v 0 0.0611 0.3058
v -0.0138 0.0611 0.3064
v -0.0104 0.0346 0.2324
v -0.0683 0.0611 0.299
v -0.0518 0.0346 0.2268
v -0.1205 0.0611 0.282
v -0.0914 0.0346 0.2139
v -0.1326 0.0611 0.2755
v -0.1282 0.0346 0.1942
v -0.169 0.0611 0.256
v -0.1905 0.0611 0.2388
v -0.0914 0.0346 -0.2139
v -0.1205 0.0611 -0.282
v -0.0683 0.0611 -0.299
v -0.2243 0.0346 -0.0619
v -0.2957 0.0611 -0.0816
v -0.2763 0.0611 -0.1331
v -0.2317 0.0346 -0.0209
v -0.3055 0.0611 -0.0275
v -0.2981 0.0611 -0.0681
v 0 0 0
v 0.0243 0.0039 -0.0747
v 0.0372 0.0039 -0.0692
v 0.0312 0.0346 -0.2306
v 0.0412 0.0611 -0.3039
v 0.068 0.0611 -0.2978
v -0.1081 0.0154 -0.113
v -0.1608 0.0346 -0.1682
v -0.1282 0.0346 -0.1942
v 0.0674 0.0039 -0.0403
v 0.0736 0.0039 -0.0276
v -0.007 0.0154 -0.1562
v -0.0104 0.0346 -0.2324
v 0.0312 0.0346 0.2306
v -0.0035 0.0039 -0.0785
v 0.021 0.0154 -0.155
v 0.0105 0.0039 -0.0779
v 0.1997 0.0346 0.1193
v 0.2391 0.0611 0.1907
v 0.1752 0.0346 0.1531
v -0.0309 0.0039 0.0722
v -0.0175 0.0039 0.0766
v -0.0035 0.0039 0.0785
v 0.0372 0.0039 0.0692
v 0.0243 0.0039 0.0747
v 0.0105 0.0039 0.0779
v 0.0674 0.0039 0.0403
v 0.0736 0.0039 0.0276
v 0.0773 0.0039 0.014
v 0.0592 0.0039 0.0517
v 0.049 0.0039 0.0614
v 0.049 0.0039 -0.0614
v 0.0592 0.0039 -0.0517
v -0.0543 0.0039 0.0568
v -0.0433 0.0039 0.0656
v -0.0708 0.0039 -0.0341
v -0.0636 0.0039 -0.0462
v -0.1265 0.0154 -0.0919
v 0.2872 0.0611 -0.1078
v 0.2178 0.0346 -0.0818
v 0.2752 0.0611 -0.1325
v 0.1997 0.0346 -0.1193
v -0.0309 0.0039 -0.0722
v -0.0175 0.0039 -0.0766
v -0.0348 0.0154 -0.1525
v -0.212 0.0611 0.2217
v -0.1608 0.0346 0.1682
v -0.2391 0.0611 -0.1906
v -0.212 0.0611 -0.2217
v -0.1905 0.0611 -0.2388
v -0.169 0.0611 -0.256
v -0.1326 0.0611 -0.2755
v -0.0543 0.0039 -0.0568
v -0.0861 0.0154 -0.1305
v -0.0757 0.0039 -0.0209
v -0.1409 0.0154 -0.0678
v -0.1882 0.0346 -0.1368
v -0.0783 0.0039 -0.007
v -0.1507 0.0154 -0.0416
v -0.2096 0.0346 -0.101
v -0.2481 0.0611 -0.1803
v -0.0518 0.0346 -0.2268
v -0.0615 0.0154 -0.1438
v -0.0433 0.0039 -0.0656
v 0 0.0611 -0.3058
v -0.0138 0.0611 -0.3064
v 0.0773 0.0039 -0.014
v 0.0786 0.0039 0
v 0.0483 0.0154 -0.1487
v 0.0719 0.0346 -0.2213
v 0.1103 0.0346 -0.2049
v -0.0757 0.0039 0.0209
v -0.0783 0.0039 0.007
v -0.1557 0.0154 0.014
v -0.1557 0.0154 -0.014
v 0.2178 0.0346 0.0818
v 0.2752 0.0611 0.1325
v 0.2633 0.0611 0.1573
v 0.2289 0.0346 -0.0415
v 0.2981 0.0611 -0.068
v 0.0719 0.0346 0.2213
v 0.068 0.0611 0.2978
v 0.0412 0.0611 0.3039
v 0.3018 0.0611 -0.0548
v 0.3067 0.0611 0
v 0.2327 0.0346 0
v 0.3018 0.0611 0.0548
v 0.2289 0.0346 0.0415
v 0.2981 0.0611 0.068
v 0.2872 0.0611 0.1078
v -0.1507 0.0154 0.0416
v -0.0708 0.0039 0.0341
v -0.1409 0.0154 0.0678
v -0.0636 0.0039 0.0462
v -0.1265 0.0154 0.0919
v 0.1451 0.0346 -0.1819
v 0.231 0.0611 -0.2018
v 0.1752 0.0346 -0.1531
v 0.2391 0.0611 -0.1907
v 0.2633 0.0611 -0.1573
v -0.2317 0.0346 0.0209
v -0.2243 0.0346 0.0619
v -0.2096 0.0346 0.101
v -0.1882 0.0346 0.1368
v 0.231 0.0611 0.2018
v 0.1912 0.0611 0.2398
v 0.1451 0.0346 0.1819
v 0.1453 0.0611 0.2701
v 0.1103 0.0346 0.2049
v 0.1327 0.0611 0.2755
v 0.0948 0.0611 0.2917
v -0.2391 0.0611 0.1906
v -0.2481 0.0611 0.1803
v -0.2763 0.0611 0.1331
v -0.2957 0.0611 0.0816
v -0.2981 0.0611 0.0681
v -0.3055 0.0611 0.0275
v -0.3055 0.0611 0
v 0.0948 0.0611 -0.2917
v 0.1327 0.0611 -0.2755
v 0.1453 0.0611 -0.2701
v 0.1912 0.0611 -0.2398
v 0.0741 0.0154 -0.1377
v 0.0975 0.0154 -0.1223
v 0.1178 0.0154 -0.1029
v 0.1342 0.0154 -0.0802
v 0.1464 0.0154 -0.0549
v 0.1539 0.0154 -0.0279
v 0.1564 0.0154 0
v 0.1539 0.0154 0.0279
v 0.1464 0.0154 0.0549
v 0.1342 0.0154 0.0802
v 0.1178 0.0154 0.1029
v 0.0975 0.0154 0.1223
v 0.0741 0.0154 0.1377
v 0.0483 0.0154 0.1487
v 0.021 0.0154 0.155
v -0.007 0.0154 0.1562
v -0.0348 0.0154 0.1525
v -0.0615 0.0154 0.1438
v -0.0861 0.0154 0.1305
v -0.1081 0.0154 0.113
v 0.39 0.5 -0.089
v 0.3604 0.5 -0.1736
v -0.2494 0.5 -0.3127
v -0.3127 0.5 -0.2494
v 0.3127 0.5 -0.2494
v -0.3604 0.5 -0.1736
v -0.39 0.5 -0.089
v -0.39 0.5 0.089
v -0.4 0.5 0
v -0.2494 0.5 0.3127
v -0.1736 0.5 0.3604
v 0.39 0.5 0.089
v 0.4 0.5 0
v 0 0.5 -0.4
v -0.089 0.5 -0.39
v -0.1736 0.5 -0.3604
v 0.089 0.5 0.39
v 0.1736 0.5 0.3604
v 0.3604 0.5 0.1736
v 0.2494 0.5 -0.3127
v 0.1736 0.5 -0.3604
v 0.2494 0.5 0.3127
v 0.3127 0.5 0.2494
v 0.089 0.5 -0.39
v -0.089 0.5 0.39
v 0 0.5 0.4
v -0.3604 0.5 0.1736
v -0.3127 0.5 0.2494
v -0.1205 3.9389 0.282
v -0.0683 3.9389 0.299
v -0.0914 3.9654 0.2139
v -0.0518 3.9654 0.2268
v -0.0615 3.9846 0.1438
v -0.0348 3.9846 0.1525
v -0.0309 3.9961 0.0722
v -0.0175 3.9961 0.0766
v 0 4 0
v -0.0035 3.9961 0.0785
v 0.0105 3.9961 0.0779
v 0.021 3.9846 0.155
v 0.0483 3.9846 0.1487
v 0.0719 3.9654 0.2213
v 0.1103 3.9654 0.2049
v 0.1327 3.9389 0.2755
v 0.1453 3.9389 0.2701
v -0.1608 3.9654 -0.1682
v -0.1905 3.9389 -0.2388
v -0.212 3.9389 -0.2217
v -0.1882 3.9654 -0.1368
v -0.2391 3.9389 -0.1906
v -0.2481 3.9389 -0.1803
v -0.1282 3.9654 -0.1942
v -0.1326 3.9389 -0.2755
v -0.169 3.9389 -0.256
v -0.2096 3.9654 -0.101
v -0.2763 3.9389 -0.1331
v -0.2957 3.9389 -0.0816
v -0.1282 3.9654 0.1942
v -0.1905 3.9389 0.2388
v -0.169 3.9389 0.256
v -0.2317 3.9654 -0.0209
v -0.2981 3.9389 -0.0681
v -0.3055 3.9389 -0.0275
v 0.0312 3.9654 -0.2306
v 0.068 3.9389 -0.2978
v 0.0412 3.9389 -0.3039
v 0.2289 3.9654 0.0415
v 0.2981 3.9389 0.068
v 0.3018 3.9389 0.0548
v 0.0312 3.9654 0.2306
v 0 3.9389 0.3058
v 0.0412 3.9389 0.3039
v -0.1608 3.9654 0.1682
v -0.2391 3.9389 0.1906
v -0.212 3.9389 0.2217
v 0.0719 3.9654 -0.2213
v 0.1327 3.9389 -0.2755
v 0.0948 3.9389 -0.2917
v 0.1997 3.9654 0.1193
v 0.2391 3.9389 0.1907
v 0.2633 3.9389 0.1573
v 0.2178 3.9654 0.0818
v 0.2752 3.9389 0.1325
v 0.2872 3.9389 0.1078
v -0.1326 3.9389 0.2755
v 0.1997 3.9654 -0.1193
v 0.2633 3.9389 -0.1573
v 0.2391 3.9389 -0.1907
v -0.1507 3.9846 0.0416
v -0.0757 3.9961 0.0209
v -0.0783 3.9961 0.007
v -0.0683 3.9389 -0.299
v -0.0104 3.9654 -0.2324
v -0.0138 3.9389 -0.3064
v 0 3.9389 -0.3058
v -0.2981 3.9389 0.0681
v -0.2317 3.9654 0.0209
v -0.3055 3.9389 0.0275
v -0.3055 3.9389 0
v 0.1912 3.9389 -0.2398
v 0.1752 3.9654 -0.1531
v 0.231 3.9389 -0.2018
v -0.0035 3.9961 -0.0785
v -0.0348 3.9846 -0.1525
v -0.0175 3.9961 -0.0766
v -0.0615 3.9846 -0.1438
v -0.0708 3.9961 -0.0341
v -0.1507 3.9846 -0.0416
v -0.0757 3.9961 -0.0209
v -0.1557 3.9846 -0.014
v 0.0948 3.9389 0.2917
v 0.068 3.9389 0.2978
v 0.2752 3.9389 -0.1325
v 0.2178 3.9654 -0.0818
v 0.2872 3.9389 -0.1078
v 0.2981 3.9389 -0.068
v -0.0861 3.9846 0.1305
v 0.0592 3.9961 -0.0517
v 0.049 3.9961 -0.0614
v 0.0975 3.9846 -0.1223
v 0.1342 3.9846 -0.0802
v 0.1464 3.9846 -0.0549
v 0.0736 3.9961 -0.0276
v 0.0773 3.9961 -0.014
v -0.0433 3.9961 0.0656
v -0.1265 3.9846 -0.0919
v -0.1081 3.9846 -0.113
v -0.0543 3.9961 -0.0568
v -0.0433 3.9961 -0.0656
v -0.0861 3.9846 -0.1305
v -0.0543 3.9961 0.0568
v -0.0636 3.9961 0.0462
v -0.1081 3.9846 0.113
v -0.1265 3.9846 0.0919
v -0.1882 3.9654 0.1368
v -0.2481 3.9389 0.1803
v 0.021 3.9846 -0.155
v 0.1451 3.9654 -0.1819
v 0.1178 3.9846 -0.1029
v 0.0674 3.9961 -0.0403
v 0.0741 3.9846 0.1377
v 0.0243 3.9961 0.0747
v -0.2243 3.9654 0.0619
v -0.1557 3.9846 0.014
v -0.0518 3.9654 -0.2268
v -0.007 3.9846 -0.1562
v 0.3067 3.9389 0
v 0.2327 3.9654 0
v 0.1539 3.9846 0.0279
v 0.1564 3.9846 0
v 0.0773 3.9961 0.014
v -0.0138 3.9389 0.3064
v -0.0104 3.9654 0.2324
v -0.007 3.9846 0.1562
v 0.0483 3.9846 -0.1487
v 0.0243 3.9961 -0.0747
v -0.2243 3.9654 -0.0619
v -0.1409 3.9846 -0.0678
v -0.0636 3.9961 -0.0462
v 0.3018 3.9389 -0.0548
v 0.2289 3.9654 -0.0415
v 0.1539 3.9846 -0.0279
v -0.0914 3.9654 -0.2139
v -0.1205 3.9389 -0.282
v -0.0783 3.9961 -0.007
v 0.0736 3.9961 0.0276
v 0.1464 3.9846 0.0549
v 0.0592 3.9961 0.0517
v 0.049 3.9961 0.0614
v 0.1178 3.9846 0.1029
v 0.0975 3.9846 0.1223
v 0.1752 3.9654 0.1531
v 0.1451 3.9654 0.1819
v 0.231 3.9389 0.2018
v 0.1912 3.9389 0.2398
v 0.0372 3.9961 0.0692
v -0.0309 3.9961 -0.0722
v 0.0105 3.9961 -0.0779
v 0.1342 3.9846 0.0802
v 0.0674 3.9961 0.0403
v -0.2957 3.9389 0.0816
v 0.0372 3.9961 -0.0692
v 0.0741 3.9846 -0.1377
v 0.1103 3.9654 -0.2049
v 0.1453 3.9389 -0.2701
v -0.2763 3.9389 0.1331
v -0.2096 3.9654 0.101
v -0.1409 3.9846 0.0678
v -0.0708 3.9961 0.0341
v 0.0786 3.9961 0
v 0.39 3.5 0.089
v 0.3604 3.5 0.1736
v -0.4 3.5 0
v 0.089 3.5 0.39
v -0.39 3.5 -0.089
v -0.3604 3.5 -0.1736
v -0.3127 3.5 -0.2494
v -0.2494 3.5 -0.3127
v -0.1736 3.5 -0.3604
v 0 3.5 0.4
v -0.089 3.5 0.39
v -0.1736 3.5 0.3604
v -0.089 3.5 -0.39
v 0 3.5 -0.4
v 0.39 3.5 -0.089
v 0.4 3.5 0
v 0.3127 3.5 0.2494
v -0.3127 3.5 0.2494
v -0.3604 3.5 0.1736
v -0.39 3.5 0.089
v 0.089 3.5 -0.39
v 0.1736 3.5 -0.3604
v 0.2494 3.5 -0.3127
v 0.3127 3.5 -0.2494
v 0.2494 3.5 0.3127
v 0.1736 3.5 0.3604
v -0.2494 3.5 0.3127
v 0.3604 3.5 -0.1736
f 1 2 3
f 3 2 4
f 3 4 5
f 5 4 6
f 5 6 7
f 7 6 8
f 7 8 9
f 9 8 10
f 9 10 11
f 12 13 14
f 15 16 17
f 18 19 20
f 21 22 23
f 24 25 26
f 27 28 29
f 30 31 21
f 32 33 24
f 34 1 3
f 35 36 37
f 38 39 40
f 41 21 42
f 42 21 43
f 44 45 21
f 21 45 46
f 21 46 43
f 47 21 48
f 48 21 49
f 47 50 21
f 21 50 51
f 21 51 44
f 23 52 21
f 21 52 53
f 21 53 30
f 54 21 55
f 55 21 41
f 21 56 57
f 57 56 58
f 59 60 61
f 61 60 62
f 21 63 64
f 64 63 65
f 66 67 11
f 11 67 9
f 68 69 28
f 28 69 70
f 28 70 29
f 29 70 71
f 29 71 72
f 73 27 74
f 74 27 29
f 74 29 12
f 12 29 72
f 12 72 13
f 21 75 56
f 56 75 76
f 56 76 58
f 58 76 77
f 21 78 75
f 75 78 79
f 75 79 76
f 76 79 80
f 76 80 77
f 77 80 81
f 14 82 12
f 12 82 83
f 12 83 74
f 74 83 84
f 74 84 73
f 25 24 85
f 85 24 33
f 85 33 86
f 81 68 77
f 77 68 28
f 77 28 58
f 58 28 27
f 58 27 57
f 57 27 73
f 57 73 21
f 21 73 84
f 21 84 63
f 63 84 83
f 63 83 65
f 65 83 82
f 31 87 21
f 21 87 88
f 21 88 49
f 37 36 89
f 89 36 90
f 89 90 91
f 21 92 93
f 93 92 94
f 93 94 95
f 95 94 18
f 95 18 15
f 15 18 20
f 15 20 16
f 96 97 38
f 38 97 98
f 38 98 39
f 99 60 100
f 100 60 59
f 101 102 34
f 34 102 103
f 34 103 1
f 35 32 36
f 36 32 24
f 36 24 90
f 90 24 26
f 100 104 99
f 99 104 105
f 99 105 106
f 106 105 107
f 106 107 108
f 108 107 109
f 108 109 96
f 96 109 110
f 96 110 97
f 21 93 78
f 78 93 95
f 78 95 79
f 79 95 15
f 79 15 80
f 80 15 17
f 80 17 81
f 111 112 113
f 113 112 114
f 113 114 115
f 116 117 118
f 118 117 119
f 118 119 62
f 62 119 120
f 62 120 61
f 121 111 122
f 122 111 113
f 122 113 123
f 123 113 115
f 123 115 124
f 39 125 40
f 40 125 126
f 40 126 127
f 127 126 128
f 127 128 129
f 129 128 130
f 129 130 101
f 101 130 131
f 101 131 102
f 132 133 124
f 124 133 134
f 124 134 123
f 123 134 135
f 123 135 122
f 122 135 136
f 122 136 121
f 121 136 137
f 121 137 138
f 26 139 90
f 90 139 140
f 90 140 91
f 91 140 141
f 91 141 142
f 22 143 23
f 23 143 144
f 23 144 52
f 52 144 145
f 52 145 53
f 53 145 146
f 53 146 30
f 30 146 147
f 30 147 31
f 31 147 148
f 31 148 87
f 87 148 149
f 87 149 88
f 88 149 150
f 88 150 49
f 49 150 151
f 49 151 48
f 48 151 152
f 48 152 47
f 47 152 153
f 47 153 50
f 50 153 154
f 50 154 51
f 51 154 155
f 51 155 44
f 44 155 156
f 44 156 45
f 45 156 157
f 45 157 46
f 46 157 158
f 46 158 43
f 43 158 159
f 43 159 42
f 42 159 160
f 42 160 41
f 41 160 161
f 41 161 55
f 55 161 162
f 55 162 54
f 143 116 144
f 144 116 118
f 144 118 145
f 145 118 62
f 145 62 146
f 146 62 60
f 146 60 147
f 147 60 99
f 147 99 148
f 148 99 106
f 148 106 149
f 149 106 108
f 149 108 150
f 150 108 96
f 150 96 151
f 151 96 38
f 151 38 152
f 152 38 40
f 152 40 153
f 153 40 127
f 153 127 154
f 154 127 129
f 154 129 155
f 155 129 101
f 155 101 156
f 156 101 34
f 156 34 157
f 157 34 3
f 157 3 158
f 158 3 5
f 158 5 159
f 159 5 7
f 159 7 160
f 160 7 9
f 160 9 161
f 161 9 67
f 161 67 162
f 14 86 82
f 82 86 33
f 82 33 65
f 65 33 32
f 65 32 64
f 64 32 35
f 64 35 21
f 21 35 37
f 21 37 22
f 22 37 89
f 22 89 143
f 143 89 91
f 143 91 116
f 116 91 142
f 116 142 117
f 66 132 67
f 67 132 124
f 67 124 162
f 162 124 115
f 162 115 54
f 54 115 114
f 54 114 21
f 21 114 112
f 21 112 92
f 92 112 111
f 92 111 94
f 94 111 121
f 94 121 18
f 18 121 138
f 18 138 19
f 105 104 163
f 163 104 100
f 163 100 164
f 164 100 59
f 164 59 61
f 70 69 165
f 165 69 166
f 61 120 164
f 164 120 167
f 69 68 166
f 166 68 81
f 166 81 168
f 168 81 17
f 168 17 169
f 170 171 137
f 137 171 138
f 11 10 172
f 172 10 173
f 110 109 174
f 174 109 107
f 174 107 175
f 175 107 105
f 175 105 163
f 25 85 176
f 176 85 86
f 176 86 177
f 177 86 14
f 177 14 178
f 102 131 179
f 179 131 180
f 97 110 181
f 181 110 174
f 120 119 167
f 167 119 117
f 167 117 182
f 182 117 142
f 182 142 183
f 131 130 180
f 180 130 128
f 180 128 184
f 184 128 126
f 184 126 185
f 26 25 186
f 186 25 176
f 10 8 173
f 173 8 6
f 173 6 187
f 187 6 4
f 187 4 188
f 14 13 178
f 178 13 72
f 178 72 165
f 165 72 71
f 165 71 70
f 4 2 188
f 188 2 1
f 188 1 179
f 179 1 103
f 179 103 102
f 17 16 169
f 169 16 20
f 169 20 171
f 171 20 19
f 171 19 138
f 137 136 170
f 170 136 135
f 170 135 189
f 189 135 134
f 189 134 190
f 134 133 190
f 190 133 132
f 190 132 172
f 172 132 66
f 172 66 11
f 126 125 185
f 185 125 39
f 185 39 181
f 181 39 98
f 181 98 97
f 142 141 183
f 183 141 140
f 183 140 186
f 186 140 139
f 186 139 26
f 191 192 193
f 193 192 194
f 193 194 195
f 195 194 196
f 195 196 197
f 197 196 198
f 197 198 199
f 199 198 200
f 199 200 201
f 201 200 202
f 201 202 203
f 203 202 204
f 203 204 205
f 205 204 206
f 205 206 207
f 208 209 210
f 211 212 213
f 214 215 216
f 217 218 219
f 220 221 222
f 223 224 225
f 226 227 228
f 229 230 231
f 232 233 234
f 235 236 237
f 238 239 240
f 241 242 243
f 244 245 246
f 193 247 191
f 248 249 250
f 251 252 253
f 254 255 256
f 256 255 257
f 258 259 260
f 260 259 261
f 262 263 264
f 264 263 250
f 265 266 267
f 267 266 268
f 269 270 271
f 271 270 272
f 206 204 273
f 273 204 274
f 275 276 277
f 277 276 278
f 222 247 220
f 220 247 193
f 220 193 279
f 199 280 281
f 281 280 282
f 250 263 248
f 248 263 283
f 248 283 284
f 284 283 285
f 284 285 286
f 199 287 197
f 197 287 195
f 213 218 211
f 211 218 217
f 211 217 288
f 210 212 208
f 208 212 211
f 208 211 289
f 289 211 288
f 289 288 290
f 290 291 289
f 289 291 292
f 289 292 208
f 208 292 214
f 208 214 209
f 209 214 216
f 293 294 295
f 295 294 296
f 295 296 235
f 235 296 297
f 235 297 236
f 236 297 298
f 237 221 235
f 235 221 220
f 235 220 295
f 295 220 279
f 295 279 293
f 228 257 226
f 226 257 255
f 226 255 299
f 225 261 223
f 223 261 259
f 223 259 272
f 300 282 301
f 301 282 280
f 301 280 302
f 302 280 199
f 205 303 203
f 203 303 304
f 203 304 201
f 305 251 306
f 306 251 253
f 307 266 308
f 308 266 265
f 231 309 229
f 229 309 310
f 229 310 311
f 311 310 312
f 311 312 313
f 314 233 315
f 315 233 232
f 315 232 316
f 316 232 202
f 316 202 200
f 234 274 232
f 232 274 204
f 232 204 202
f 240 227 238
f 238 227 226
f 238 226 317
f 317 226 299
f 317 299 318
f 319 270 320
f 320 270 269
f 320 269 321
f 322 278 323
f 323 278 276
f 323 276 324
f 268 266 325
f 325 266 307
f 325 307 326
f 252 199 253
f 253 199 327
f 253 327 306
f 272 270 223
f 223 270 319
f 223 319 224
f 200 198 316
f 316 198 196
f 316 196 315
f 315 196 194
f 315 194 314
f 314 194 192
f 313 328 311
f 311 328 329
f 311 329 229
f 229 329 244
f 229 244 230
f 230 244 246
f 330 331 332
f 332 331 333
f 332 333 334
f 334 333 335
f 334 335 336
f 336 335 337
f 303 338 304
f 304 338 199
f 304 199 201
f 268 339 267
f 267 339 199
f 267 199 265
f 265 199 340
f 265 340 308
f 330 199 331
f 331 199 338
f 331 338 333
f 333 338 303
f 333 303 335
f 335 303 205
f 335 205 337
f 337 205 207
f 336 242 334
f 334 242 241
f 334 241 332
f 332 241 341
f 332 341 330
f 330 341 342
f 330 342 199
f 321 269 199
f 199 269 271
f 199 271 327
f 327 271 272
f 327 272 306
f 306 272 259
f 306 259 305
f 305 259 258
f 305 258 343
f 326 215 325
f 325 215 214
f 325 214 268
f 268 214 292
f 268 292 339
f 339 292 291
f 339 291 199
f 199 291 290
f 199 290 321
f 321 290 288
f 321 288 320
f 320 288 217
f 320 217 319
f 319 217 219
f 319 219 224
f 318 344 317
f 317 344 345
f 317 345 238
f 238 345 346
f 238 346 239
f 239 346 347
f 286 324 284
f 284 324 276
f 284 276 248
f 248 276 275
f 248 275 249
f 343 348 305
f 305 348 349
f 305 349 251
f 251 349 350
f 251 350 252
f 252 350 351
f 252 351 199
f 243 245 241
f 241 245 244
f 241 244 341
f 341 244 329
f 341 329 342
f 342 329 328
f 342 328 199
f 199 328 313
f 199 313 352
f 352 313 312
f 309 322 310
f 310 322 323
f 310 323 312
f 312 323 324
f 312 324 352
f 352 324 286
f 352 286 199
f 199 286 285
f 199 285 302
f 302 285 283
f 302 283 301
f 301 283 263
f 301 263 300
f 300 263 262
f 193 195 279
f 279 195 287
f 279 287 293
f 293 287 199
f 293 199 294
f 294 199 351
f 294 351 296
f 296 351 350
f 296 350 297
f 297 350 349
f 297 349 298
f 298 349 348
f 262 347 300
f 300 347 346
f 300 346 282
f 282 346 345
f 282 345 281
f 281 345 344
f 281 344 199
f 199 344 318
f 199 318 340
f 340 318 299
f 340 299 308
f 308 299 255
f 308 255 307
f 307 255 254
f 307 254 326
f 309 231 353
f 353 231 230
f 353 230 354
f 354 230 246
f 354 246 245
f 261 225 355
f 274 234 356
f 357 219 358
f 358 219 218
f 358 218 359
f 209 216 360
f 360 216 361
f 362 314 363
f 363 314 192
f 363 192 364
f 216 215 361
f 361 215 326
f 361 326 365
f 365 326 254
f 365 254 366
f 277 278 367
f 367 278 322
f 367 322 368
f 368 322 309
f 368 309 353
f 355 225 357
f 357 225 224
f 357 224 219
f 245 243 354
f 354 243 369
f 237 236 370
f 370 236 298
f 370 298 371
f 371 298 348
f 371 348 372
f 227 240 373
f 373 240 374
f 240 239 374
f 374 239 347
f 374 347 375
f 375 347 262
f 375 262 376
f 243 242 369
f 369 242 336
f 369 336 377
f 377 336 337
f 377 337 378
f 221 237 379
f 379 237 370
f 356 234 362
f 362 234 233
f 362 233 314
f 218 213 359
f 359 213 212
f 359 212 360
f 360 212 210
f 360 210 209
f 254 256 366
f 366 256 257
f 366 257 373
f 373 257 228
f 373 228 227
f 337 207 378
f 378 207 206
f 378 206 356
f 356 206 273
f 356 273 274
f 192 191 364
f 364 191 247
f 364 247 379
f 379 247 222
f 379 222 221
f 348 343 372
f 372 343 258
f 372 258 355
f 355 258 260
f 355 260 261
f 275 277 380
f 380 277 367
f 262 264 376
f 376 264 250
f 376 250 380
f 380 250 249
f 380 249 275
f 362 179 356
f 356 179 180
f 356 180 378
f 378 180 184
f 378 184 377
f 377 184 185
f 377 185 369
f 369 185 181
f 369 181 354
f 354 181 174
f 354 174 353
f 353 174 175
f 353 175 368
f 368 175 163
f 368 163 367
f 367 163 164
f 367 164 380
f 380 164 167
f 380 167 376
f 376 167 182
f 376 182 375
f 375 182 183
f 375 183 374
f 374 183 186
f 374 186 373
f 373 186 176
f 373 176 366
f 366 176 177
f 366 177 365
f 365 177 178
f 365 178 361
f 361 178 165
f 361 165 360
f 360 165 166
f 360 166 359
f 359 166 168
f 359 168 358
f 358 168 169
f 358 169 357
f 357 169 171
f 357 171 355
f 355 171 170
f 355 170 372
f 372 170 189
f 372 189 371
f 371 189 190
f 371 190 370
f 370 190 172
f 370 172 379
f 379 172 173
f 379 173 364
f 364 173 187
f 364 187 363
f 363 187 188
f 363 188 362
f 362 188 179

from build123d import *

# Parameters (mm, degrees)
SKETCH1_R           = 0.4
BOSS_EXTRUDE1_DEPTH = 4


with BuildPart() as part:
    # Sketch1 → Boss-Extrude1 (new body)
    with BuildSketch(Plane(origin=(0, 0, 0), x_dir=(1, 0, 0), z_dir=(0, 1, 0))):
        Circle(SKETCH1_R)
    extrude(amount=BOSS_EXTRUDE1_DEPTH)

    # Sketch2 → Cut-Revolve2 (revolve, cut)
    with BuildSketch(Plane.XY):
        with BuildLine():
            Line((0.4, 3.892820323), (0.4, 4.1))
            Line((0.4, 4.1), (0, 4.1))
            Line((0, 4.1), (0, 4))
            ThreePointArc((0, 4), (0.207055236, 3.972740661), (0.4, 3.892820323))
        make_face()
        with BuildLine():
            Line((0.4, -0.1), (0, -0.1))
            Line((0, -0.1), (0, 0))
            ThreePointArc((0, 0), (0.207055236, 0.027259339), (0.4, 0.107179677))
            Line((0.4, 0.107179677), (0.4, -0.1))
        make_face()
    revolve(axis=Axis((0, 0, 0), (0, 1, 0)), mode=Mode.SUBTRACT)

    # Sketch3 → Cut-Revolve3 (revolve, cut)
    with BuildSketch(Plane.XY):
        with BuildLine():
            Line((-0.4, 3.5), (-0.306715799, 3.93886766))
            ThreePointArc((-0.306715799, 3.93886766), (-0.354107179, 3.917361907), (-0.4, 3.892820323))
            Line((-0.4, 3.892820323), (-0.4, 3.5))
        make_face()
        with BuildLine():
            Line((-0.4, 0.107179677), (-0.4, 0.5))
            Line((-0.4, 0.5), (-0.306715799, 0.06113234))
            ThreePointArc((-0.306715799, 0.06113234), (-0.354107179, 0.082638093), (-0.4, 0.107179677))
        make_face()
    revolve(axis=Axis((0, 0, 0), (0, 1, 0)), mode=Mode.SUBTRACT)


solid = part.part
